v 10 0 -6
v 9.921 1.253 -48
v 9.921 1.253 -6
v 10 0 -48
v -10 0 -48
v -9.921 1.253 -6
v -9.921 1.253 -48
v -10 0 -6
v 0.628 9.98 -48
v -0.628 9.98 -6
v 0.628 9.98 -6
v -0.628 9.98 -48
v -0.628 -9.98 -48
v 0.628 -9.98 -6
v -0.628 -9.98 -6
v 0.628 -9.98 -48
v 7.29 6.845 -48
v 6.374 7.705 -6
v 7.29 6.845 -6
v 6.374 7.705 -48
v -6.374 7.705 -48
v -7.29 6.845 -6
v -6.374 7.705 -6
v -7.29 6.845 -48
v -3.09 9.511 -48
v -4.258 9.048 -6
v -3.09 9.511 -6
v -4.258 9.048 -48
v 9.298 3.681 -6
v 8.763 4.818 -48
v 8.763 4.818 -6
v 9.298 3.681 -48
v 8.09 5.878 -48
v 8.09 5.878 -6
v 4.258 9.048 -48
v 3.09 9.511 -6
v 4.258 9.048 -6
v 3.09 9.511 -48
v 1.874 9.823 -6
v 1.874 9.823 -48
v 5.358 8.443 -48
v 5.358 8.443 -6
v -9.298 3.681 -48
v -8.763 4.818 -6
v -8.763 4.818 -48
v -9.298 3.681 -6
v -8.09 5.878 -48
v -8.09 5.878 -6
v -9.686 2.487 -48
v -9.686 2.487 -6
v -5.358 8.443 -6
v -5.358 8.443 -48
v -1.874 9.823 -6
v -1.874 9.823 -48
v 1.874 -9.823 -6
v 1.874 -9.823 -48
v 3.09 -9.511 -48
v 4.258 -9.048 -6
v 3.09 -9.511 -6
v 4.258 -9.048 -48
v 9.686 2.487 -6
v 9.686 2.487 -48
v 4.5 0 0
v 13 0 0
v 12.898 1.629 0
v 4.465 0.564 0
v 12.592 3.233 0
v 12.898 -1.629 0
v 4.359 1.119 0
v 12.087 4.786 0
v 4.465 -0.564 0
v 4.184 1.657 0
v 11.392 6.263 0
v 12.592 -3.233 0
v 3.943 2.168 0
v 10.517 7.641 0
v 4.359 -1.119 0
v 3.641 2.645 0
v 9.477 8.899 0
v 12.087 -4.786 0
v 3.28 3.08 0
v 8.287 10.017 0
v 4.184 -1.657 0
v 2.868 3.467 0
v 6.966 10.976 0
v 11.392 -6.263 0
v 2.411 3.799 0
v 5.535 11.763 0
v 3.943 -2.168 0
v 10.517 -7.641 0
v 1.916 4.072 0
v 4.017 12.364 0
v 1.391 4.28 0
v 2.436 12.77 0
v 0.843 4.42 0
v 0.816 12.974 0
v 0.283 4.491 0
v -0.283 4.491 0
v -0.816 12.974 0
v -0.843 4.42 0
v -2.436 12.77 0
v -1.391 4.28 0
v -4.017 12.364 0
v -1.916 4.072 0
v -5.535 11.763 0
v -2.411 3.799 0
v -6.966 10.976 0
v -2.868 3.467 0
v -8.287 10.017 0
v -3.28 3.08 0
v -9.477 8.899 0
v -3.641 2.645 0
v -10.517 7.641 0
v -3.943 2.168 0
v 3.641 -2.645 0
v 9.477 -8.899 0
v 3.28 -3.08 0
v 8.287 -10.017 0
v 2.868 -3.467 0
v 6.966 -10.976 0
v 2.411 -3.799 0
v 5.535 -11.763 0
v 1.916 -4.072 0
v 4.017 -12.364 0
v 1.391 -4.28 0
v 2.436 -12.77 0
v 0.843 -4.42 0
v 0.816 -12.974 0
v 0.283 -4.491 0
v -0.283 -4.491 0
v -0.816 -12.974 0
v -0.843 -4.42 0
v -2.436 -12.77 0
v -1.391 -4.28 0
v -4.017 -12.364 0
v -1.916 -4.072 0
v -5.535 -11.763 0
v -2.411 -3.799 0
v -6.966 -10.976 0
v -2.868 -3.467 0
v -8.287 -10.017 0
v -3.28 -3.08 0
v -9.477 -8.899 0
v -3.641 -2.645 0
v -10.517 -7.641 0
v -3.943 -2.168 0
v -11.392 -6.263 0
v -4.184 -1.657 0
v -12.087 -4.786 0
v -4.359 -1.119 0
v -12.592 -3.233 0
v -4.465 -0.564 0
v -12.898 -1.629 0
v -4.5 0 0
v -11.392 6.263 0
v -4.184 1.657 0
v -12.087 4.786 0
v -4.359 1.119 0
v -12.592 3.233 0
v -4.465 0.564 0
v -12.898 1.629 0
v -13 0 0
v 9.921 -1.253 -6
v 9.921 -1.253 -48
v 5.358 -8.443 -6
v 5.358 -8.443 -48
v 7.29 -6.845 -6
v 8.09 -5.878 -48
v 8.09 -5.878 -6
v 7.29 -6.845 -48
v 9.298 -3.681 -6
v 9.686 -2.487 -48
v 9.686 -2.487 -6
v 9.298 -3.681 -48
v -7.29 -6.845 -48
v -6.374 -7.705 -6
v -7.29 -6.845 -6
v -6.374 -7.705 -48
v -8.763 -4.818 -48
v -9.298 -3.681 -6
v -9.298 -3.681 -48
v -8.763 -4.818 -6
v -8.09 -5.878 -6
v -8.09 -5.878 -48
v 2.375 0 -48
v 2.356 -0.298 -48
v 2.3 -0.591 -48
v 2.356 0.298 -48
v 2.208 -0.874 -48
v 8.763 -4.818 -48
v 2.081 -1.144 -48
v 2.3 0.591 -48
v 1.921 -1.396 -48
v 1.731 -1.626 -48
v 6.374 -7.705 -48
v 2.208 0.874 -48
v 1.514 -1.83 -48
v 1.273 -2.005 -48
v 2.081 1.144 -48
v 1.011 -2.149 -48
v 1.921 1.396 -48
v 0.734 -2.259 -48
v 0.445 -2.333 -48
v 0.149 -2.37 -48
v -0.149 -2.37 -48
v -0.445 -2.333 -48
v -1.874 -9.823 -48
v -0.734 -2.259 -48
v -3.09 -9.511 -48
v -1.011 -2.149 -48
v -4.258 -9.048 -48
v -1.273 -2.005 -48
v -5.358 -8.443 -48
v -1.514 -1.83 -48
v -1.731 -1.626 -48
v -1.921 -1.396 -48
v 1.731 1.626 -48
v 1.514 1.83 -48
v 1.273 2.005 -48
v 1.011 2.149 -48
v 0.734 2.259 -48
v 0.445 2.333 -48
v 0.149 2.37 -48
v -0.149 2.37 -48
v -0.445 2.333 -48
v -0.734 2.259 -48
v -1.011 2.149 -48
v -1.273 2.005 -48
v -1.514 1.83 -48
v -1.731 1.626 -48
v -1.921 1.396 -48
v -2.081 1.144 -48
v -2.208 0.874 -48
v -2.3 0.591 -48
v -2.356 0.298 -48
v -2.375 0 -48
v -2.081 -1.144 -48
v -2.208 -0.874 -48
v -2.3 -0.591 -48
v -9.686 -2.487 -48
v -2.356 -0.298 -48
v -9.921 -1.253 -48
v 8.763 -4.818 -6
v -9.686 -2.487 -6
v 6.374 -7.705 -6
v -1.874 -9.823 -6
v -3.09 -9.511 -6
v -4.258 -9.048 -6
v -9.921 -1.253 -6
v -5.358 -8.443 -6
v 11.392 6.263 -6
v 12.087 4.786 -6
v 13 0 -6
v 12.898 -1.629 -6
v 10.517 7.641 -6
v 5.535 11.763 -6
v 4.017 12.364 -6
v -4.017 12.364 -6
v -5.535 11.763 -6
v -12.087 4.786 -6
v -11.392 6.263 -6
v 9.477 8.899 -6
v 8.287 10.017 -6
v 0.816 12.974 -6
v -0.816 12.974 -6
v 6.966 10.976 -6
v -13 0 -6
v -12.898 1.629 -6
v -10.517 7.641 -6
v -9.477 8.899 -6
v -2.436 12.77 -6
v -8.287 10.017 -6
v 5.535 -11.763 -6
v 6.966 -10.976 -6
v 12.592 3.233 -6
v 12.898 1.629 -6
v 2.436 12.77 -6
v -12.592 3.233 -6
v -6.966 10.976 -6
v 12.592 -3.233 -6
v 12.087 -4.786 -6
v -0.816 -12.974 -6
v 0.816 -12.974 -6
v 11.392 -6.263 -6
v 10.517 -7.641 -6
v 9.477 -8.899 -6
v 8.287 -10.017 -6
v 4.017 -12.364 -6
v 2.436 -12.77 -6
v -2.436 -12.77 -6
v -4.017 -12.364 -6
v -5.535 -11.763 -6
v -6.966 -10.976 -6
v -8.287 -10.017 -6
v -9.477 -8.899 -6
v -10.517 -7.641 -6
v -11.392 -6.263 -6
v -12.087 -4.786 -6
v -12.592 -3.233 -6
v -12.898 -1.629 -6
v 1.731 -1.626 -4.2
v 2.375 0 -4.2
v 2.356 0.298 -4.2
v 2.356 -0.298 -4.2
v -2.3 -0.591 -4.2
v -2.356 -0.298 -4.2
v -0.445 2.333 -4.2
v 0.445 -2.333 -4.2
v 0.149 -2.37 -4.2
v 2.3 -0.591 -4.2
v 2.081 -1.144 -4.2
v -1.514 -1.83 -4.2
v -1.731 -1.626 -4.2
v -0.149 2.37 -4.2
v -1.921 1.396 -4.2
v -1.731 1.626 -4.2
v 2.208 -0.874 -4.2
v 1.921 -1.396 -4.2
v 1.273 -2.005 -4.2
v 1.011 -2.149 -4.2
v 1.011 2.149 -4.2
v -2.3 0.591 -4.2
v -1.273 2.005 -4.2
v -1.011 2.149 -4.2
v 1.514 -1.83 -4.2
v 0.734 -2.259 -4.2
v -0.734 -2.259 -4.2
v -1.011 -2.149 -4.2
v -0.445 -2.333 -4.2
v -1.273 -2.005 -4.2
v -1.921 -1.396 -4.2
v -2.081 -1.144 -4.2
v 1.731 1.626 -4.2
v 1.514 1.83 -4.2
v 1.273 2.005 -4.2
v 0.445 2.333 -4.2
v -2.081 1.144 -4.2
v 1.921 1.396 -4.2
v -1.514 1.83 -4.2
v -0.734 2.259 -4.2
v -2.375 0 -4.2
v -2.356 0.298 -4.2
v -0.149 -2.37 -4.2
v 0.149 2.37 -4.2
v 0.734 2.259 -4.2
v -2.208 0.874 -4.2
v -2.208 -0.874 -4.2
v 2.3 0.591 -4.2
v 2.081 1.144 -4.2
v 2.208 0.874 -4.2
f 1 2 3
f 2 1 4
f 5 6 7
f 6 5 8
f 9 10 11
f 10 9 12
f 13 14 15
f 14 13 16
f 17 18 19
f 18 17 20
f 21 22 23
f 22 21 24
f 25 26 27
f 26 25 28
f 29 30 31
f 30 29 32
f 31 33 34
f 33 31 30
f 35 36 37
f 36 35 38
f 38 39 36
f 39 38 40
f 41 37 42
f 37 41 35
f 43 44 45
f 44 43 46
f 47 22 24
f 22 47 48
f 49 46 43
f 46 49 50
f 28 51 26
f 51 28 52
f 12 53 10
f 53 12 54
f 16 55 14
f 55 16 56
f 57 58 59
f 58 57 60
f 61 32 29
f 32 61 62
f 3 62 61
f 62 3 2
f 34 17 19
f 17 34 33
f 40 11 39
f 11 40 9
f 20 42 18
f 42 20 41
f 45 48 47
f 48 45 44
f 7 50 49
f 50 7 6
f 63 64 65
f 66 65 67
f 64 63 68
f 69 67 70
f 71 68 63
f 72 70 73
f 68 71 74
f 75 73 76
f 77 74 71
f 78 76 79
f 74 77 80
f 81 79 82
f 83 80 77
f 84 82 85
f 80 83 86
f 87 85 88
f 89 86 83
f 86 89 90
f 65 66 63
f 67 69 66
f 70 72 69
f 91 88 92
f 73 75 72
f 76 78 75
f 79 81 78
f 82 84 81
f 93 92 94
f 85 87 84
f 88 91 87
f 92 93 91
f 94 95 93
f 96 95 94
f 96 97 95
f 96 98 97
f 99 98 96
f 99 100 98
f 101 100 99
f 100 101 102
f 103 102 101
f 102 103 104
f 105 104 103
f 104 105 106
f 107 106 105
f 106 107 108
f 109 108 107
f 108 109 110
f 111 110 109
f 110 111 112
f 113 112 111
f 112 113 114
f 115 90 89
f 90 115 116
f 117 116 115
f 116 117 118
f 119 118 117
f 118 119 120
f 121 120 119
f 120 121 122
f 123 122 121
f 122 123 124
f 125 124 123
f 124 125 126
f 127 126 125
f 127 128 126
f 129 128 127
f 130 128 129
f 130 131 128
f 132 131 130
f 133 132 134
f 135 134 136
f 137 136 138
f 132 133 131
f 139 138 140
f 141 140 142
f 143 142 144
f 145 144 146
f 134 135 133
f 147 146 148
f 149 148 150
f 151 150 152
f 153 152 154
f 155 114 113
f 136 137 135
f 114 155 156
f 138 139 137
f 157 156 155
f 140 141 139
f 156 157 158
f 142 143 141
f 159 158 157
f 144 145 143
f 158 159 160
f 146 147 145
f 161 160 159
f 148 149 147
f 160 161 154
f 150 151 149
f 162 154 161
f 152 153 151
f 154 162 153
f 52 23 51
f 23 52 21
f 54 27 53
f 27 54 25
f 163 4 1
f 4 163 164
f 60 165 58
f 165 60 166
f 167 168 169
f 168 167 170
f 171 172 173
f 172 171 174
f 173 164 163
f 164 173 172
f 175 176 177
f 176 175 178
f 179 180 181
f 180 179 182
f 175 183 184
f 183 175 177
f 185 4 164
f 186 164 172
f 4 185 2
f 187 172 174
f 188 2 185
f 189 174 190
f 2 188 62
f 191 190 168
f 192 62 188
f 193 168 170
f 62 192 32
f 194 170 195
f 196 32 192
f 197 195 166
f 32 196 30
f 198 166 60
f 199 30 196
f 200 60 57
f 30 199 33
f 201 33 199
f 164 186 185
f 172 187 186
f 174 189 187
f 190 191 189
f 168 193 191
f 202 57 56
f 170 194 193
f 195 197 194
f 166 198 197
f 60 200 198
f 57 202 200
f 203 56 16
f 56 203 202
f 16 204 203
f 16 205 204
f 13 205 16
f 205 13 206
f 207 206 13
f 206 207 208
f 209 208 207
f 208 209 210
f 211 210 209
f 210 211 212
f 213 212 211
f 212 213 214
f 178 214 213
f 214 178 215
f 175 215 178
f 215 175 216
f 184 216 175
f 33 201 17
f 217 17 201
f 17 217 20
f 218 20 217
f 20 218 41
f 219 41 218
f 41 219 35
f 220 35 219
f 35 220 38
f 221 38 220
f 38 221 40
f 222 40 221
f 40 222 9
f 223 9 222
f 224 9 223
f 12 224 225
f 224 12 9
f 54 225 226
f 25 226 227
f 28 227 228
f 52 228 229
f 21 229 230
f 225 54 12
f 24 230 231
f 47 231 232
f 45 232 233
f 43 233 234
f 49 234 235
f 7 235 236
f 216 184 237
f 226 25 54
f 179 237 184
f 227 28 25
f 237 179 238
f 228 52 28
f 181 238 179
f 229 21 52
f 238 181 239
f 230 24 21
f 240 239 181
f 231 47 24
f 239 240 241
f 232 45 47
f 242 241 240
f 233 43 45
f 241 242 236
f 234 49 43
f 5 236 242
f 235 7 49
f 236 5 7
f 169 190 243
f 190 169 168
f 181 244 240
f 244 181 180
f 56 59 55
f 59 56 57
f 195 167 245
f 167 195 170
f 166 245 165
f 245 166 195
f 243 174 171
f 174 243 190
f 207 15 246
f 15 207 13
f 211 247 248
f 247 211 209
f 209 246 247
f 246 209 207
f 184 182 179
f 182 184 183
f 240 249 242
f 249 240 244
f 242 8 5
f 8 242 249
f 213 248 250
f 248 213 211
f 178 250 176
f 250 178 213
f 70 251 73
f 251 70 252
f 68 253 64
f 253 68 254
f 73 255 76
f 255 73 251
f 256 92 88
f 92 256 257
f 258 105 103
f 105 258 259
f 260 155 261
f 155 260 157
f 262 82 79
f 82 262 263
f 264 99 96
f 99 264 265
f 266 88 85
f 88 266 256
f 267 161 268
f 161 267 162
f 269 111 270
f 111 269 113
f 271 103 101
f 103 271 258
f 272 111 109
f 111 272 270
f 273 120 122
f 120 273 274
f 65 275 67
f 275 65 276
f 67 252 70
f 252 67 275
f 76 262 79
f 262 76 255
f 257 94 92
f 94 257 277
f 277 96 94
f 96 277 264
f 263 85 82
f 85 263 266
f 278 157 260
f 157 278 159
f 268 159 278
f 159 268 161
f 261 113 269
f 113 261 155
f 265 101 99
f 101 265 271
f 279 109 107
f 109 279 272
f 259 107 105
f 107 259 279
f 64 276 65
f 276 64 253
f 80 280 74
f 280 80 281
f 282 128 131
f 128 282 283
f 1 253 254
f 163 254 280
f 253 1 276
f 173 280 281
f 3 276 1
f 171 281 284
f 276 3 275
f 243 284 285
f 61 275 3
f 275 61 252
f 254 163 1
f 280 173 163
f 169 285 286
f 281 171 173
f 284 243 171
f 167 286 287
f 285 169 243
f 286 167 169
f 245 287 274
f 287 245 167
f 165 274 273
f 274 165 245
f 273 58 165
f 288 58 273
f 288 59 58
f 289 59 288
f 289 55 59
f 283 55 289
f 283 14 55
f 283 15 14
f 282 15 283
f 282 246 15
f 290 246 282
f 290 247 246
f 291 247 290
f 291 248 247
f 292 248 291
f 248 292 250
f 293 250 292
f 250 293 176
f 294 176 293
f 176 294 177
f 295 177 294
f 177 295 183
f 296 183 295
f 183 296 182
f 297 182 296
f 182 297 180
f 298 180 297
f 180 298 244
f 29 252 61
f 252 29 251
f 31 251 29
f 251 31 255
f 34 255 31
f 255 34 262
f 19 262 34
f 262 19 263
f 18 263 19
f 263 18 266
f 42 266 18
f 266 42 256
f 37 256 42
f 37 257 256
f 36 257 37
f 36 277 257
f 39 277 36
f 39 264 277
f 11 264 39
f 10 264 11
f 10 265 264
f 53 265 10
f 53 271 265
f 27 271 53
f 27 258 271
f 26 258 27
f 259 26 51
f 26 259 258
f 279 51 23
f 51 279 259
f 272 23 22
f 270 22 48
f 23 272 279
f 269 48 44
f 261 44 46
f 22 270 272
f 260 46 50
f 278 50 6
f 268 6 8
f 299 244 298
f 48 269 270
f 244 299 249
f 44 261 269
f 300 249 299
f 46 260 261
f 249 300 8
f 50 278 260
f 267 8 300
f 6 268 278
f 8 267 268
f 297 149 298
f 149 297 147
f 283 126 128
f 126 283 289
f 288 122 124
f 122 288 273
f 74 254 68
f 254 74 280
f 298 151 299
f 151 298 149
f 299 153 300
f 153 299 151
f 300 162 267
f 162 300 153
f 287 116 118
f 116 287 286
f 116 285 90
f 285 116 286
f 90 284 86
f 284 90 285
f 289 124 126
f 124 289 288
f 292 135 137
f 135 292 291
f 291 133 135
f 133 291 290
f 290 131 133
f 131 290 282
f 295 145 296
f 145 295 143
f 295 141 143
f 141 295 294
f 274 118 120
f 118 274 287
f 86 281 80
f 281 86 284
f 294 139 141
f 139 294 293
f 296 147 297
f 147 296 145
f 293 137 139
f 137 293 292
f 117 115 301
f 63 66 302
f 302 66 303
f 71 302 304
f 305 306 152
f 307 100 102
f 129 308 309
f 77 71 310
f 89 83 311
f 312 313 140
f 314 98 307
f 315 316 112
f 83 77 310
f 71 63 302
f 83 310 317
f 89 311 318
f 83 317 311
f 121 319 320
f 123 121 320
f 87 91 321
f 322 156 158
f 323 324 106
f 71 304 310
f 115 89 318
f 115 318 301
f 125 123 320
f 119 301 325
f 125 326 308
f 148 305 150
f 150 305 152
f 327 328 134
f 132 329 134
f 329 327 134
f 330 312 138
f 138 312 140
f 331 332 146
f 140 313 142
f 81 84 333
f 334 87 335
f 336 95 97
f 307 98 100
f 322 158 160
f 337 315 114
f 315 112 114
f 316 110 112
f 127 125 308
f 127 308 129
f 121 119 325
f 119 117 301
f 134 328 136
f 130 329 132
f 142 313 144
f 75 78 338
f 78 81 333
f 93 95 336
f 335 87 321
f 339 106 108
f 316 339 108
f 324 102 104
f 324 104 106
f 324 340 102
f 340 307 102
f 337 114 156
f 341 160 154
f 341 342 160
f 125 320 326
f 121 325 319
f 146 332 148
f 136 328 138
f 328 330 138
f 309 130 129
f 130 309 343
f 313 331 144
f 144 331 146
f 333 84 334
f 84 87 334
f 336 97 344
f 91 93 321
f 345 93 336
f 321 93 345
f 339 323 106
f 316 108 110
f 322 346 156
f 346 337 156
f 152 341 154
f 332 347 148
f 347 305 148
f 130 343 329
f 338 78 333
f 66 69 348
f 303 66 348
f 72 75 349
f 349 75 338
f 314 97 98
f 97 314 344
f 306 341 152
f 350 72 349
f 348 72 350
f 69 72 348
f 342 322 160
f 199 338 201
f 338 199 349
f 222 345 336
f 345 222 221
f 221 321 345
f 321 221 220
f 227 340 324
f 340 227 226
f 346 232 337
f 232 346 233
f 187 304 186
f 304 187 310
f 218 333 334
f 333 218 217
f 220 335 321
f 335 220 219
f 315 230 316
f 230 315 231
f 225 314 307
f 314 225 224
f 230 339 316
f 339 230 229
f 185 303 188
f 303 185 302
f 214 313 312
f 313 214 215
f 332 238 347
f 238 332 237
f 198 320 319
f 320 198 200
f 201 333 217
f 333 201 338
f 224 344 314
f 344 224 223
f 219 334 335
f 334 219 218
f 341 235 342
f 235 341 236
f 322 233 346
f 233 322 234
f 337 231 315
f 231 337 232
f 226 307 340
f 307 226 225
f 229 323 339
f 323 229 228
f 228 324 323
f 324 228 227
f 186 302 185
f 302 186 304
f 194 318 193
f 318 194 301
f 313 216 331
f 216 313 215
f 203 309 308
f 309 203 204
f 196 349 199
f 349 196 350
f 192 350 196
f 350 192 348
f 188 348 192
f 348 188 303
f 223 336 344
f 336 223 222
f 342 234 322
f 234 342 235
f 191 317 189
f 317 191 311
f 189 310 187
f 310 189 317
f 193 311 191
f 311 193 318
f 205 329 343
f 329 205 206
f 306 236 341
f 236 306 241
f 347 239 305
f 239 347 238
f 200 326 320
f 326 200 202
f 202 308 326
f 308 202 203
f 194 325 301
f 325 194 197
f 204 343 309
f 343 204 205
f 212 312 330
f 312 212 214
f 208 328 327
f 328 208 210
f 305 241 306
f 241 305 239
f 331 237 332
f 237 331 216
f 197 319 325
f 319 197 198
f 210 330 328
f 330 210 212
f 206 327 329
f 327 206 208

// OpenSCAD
$fn = 50;


difference() {
	union() {
		translate(v = [0, 0, -48.0000000000]) {
			cylinder(h = 48, r = 10.0000000000);
		}
		translate(v = [0, 0, -6.0000000000]) {
			cylinder(h = 6, r = 13.0000000000);
		}
	}
	union() {
		translate(v = [0, 0, 0]) {
			rotate(a = [0, 0, 0]) {
				difference() {
					union() {
						#translate(v = [0, 0, -48.0000000000]) {
							cylinder(h = 48, r = 2.2500000000);
						}
						#translate(v = [0, 0, -4.2000000000]) {
							cylinder(h = 4.2000000000, r = 10.0000000000, r1 = 2.3750000000, r2 = 4.5000000000);
						}
						#translate(v = [0, 0, -48.0000000000]) {
							cylinder(h = 48, r = 2.3750000000);
						}
						#translate(v = [0, 0, -48.0000000000]) {
							cylinder(h = 48, r = 2.2500000000);
						}
					}
					union();
				}
			}
		}
	}
}
